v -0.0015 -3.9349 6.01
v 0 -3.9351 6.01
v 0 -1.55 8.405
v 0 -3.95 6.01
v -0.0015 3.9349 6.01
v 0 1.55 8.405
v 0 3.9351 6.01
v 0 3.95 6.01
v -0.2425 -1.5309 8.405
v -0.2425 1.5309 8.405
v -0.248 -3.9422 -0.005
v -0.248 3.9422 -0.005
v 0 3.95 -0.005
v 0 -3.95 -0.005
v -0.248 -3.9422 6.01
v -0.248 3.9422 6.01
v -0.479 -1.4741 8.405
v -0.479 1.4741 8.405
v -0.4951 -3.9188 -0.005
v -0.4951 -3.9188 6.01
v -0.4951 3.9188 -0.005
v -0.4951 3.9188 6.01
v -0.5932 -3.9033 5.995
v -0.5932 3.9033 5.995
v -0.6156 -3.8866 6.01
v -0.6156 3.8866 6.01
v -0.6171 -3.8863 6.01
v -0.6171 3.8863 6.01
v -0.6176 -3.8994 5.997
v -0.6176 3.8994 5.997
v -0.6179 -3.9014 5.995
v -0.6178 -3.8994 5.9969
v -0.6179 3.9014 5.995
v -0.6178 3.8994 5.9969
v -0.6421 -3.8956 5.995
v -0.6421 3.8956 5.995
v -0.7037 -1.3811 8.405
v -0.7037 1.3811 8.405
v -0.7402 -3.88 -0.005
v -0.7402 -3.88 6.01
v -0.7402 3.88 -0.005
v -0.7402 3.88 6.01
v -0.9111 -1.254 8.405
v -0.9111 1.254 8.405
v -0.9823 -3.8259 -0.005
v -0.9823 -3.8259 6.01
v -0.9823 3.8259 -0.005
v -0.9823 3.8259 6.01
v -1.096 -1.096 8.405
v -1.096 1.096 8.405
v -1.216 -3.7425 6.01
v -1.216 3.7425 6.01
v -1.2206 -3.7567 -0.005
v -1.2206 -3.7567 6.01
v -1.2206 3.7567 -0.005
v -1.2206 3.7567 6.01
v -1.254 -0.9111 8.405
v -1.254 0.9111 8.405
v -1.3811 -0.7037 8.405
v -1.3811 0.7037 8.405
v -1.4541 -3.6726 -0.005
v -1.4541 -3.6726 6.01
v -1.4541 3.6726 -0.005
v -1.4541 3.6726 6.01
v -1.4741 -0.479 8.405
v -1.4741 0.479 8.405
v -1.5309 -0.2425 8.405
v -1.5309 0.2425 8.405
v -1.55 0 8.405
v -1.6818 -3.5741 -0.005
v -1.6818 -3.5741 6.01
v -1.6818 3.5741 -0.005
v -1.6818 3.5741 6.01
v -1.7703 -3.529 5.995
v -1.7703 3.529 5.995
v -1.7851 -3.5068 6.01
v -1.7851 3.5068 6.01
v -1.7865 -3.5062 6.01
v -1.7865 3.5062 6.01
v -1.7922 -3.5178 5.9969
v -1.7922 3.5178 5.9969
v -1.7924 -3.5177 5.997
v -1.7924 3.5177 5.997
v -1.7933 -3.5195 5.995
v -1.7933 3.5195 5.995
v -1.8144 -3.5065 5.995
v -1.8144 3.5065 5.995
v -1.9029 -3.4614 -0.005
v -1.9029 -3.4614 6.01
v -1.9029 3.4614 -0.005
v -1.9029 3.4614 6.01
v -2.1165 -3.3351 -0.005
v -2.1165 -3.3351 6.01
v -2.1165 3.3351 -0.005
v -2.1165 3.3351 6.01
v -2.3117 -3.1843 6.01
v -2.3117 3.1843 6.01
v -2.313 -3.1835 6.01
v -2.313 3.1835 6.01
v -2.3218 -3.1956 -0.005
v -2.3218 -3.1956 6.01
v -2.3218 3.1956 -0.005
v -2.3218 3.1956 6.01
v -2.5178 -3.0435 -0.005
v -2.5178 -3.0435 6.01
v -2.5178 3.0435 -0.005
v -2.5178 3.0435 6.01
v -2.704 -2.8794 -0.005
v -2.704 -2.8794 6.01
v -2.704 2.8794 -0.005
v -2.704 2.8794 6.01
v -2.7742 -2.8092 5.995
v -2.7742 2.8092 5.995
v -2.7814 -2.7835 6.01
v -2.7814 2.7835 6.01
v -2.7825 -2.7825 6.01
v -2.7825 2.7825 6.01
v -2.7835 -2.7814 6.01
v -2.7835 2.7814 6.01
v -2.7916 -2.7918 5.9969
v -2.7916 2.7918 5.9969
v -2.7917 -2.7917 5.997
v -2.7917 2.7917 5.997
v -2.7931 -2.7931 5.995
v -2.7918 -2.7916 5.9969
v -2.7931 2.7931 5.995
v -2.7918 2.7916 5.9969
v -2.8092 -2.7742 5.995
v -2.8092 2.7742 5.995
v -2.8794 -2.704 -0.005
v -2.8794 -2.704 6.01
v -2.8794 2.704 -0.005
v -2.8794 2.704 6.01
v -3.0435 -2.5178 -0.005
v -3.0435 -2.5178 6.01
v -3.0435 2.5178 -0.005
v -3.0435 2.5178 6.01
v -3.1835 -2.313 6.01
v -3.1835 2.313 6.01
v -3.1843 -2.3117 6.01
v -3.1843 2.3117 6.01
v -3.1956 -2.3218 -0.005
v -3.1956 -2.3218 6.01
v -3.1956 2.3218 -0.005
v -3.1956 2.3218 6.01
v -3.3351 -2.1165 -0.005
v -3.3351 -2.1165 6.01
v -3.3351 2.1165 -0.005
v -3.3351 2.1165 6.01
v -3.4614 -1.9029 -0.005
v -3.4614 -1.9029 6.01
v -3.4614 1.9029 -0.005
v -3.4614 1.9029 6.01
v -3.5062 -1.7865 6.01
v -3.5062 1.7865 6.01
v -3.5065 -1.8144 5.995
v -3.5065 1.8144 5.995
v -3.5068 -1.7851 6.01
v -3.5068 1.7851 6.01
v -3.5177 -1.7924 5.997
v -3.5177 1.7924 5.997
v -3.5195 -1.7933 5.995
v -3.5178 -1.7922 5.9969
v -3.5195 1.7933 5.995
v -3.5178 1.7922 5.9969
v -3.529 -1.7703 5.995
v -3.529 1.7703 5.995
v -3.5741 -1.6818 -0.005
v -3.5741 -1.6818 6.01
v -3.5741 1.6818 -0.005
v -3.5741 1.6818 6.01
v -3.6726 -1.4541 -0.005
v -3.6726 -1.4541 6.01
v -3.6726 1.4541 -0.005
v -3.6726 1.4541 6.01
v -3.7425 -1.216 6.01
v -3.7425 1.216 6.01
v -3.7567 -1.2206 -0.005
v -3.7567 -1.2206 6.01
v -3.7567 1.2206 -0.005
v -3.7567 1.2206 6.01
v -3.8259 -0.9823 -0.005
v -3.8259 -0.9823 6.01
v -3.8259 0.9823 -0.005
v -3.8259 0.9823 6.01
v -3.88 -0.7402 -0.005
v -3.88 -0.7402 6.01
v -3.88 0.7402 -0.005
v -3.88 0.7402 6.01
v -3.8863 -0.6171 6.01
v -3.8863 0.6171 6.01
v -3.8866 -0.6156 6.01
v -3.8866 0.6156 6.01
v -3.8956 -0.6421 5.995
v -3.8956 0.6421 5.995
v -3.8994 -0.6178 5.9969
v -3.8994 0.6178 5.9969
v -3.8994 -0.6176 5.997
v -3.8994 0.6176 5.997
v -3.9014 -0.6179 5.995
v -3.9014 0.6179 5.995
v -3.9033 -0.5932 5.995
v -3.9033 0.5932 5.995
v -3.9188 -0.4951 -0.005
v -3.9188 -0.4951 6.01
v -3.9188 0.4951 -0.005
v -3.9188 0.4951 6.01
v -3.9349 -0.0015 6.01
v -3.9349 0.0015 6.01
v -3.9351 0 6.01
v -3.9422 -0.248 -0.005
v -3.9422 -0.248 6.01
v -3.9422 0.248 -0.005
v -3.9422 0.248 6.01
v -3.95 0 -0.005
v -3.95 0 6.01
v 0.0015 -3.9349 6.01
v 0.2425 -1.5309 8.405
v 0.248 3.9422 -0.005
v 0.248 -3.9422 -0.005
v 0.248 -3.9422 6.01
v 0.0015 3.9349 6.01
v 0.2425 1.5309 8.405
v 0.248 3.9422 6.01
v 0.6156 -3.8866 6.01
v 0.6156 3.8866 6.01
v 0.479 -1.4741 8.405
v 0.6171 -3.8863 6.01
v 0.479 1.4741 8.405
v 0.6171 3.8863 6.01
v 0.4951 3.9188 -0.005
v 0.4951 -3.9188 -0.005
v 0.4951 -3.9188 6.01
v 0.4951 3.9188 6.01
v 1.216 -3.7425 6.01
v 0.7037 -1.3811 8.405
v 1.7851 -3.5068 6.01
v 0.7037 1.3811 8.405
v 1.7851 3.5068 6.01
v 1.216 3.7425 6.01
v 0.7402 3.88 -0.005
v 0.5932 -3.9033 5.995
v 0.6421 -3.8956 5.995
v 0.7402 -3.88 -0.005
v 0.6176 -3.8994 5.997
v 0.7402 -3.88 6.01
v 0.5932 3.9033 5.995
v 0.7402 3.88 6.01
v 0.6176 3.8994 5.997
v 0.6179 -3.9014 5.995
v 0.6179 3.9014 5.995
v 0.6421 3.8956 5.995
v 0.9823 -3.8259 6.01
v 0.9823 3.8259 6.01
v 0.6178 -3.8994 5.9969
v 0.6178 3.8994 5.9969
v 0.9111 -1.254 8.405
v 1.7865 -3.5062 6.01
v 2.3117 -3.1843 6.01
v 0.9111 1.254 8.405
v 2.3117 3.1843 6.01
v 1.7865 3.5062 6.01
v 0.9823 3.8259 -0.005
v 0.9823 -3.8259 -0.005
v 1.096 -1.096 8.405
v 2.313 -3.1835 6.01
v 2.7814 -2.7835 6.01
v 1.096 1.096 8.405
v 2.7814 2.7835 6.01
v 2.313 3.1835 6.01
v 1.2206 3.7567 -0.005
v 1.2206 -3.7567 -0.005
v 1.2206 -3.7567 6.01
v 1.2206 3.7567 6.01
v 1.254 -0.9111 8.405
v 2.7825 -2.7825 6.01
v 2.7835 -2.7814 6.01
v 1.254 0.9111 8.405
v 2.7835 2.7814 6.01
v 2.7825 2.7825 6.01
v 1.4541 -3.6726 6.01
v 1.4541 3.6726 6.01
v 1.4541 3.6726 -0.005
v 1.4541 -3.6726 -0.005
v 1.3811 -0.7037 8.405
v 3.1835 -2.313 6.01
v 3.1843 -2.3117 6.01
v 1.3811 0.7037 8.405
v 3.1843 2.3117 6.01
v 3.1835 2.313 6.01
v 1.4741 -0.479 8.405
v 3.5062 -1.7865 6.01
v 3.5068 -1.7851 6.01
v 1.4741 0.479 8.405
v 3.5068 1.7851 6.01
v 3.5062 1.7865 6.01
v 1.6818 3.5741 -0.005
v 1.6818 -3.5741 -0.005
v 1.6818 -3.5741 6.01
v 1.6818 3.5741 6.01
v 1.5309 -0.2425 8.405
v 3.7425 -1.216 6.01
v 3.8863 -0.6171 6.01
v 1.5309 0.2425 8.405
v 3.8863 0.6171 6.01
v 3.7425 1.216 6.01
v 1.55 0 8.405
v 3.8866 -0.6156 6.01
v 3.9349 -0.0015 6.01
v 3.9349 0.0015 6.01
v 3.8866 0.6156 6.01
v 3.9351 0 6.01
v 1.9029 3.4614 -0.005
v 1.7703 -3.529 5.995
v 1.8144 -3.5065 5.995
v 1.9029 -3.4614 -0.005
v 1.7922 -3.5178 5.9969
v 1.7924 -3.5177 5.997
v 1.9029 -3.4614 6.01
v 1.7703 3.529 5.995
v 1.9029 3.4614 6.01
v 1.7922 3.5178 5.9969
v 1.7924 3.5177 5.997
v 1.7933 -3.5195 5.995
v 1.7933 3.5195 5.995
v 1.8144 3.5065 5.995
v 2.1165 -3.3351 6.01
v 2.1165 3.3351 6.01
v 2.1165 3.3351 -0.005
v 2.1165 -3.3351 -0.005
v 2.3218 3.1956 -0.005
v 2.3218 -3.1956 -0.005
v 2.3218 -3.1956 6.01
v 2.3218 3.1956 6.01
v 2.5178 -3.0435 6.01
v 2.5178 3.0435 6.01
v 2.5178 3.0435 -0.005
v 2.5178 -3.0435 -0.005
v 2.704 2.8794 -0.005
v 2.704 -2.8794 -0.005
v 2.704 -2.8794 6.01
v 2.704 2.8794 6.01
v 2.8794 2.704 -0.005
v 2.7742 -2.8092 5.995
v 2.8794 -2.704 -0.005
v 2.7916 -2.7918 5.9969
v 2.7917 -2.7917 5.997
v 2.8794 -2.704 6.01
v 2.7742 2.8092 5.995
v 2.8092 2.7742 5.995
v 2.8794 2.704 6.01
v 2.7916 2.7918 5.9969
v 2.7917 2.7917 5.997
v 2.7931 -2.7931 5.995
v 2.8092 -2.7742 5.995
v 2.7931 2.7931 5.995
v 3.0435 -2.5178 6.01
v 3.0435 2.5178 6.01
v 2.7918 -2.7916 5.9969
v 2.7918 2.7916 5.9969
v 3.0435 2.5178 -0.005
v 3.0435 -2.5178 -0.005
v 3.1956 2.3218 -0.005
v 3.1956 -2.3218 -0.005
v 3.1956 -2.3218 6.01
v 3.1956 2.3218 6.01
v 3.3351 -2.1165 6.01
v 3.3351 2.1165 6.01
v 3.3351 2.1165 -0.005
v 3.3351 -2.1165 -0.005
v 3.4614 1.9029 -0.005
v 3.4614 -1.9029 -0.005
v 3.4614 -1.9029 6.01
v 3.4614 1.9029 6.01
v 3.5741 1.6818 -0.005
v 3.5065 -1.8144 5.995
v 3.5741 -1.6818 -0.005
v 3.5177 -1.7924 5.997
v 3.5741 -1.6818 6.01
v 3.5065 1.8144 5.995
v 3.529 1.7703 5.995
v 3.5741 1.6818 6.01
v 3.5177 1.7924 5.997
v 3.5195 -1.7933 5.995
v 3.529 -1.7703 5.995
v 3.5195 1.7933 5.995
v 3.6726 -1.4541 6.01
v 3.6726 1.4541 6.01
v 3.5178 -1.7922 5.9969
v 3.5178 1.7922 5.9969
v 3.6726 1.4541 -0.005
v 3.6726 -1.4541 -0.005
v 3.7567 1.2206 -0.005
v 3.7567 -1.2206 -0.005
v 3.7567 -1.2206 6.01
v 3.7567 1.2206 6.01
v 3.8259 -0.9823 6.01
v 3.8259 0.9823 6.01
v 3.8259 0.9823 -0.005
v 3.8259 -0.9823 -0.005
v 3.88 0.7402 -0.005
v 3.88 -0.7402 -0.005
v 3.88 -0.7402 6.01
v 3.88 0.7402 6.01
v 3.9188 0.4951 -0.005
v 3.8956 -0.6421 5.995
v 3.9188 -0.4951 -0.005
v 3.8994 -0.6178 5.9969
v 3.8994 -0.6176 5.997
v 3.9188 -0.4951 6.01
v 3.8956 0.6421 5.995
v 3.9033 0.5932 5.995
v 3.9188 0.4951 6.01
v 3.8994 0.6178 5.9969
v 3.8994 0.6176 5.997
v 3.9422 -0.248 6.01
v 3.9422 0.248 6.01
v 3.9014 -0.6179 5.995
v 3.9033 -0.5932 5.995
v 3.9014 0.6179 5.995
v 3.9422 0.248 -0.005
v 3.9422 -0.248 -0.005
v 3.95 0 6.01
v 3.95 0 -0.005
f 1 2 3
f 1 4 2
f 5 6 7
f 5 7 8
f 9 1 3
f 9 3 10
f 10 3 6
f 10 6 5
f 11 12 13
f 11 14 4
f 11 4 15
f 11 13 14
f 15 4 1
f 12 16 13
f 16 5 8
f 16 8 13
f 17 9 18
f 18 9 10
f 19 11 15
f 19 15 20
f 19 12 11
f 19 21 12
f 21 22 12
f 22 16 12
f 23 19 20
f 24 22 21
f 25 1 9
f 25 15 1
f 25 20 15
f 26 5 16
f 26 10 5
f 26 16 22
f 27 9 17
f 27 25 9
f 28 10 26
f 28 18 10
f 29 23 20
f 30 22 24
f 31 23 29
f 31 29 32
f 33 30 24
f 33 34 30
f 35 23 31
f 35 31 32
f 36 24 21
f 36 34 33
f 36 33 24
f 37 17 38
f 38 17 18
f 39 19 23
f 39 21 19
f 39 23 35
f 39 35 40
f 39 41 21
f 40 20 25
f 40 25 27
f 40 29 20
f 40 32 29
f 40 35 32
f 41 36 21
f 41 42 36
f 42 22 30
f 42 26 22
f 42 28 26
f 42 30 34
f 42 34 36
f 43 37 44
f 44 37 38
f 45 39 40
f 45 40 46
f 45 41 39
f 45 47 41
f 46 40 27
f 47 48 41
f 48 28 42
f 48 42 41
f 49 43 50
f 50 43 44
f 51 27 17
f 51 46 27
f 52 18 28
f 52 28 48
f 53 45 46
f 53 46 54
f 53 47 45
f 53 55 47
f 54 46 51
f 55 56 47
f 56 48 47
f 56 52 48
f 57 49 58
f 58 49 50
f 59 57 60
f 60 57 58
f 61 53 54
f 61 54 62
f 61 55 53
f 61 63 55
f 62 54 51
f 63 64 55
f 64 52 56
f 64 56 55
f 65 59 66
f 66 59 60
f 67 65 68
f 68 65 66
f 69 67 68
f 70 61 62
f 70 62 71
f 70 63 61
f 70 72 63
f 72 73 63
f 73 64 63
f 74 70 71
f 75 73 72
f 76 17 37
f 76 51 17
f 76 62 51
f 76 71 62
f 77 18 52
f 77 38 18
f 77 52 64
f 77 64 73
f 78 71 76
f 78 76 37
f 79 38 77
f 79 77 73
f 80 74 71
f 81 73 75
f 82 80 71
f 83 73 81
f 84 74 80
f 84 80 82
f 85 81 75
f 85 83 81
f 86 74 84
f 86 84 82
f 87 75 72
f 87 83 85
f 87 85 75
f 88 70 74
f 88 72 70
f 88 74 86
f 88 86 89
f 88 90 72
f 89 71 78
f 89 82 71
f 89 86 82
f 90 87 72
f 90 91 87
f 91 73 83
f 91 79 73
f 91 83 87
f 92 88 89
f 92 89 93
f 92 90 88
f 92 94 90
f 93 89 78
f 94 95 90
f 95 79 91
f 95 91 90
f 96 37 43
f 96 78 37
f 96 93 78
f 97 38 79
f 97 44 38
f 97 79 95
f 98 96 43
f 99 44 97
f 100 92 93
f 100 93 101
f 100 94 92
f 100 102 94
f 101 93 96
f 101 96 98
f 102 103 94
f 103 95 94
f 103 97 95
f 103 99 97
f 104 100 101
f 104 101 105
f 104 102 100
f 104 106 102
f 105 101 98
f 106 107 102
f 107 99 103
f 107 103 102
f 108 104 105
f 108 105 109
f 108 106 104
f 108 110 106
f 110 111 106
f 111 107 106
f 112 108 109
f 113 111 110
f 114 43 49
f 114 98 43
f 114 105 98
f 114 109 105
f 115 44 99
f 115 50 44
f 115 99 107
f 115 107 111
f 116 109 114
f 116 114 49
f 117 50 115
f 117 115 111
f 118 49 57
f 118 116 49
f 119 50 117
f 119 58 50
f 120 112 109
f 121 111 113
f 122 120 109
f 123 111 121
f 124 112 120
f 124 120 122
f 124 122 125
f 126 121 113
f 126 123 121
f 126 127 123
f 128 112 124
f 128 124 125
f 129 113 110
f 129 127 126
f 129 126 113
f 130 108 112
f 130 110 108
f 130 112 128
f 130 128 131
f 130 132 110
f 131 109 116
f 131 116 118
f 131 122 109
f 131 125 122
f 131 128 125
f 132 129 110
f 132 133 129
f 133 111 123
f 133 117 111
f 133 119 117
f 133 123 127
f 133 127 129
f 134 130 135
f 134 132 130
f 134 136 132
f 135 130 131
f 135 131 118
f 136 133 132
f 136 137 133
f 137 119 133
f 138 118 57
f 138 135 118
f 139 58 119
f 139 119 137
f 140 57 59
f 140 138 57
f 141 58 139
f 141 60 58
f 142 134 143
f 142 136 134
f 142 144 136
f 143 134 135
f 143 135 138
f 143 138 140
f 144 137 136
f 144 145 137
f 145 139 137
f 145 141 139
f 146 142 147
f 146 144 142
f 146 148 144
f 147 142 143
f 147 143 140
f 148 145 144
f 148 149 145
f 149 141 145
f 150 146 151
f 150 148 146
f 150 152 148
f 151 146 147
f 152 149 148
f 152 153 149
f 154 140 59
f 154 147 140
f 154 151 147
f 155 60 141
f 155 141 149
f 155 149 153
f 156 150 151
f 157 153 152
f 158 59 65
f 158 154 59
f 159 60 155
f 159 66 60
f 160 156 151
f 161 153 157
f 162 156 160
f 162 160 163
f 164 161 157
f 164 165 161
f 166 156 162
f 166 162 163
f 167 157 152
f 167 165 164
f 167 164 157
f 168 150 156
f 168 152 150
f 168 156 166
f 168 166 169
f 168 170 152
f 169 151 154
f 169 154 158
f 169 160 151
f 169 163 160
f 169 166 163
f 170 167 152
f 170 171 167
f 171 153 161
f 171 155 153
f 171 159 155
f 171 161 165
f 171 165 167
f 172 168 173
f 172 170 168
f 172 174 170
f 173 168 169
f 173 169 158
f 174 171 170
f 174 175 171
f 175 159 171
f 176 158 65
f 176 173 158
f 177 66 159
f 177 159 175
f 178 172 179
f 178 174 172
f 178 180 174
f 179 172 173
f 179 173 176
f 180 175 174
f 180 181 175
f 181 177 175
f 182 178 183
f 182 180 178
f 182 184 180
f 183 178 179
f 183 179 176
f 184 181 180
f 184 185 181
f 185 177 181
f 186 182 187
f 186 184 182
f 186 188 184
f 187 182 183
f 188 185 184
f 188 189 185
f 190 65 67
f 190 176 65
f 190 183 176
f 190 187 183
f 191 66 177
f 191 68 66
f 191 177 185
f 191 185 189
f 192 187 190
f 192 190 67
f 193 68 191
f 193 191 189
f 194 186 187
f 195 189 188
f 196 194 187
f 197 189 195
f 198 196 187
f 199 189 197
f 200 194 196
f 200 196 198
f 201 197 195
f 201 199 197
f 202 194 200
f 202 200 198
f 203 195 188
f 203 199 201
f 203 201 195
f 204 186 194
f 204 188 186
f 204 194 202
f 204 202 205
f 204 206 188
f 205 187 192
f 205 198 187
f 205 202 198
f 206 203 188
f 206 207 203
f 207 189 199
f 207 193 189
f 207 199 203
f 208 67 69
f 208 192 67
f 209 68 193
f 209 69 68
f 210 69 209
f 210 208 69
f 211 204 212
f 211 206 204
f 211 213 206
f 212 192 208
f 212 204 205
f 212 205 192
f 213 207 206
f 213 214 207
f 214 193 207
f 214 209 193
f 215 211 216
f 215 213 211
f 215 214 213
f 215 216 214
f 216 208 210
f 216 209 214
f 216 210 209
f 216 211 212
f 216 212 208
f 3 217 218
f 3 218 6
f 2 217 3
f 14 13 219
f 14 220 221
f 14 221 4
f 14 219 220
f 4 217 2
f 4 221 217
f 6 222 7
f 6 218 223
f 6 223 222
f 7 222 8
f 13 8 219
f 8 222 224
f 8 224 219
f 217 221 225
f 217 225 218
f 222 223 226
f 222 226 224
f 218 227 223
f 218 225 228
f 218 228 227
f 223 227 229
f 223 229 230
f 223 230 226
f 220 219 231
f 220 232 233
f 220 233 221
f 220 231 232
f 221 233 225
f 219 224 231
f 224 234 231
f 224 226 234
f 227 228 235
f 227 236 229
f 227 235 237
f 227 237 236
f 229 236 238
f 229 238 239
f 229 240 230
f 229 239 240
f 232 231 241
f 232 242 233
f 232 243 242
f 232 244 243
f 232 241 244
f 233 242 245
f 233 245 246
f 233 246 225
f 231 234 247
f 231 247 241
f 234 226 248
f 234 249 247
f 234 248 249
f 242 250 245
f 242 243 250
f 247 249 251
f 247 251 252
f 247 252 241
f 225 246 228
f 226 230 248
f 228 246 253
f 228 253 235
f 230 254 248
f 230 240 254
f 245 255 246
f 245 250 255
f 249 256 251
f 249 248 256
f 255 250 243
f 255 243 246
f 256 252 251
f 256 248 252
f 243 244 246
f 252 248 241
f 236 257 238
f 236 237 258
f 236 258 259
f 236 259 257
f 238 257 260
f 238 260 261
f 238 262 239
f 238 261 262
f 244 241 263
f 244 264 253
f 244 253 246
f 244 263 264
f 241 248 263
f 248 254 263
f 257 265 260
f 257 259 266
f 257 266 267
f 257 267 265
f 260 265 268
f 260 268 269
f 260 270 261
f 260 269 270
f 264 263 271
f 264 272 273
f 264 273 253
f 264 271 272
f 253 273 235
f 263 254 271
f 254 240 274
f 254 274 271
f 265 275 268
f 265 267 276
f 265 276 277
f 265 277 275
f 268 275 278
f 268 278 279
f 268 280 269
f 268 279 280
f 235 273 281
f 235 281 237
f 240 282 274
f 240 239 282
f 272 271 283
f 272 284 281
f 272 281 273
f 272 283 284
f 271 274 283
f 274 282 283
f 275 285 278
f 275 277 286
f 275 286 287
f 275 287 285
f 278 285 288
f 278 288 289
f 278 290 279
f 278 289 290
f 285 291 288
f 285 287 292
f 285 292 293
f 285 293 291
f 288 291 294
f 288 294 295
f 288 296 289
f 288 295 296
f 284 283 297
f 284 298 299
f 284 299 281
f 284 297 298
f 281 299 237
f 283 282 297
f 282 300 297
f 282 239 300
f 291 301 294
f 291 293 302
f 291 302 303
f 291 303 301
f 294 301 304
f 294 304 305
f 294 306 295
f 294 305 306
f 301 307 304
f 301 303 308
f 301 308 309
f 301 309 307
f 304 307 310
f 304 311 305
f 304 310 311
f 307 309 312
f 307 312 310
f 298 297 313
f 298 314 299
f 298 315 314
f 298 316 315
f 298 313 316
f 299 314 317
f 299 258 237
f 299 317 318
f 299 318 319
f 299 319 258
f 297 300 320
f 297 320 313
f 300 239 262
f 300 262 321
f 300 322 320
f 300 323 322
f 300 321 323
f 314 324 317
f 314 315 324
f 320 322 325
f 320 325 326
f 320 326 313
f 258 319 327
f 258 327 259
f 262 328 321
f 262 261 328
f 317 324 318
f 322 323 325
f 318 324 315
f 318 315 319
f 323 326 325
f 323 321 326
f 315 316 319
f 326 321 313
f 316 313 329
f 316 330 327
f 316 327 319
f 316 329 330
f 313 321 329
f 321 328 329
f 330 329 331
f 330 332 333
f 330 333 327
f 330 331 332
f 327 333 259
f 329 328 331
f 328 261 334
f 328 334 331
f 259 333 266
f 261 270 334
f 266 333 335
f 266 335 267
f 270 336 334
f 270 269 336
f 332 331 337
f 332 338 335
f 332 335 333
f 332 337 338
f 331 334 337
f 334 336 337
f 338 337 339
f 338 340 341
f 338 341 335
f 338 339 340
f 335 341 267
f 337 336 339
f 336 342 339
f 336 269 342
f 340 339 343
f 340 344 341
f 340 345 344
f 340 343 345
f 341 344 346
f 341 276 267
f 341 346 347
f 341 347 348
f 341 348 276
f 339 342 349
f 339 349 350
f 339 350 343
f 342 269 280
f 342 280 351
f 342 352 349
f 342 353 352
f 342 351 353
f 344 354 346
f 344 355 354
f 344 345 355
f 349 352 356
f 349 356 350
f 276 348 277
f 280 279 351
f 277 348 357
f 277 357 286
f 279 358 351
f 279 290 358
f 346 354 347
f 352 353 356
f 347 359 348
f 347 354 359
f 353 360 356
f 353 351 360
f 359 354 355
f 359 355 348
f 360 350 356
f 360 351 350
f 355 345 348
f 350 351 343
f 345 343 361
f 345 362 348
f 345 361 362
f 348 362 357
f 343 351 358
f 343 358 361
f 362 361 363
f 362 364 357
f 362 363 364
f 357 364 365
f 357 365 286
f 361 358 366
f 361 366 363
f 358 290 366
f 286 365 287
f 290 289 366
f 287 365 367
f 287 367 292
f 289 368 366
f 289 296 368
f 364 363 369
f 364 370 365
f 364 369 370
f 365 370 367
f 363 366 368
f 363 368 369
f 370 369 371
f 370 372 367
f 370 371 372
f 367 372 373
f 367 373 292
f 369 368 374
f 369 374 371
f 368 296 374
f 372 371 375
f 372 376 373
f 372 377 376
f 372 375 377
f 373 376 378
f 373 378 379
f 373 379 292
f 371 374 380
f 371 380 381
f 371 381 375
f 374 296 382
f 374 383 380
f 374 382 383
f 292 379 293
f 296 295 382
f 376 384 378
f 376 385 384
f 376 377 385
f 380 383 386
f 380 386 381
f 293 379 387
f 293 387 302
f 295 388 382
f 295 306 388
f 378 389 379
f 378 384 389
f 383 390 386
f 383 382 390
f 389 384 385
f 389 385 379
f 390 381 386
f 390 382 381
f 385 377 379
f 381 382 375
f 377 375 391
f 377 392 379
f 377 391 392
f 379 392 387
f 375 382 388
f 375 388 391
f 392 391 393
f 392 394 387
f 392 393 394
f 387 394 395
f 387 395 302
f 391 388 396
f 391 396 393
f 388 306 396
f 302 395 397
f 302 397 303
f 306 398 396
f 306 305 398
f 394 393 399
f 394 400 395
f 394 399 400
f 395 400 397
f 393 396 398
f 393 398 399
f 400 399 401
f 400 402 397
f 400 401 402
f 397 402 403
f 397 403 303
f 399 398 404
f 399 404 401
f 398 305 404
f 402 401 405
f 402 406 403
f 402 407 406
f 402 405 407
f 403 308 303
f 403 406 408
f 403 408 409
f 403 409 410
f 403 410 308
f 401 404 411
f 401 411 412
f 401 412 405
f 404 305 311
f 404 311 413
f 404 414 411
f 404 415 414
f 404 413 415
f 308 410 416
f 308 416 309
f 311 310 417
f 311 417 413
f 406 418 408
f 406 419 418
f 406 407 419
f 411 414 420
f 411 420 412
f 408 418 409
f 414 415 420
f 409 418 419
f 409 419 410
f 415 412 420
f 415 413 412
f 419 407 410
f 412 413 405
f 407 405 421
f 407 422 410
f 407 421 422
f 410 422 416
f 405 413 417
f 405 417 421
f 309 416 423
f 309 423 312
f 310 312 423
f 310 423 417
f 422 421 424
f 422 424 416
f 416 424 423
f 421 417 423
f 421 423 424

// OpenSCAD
// file: lib/polyScrewThread_r1.scad
/*
 *    polyScrewThread_r1.scad    by aubenc @ Thingiverse
 *
 * This script contains the library modules that can be used to generate
 * threaded rods, screws and nuts.
 *
 * http://www.thingiverse.com/thing:8796
 *
 * CC Public Domain
 */


/* Example:
 * Just a 100mm long threaded rod.
 *
 * screw_thread(15,   // Outer diameter of the thread
 *               4,   // Step, traveling length per turn, also, tooth height, whatever...
 *              55,   // Degrees for the shape of the tooth 
 *                       (XY plane = 0, Z = 90, btw, 0 and 90 will/should not work...)
 *             100,   // Length (Z) of the tread
 *            PI/2,   // Resolution, one face each "PI/2" mm of the perimeter, 
 *               0);  // Countersink style:
 *                         -2 - Not even flat ends
 *                         -1 - Bottom (countersink'd and top flat)
 *                          0 - None (top and bottom flat)
 *                          1 - Top (bottom flat)
 *                          2 - Both (countersink'd)
 */
module screw_thread(od,st,lf0,lt,rs,cs)
{
    or=od/2;
    ir=or-st/2*cos(lf0)/sin(lf0);
    pf=2*PI*or;
    sn=floor(pf/rs);
    lfxy=360/sn;
    ttn=round(lt/st+1);
    zt=st/sn;

    intersection()
    {
        if (cs >= -1)
        {
           thread_shape(cs,lt,or,ir,sn,st);
        }

        full_thread(ttn,st,sn,zt,lfxy,or,ir);
    }
}

/* Example.
 * A nut for the thread rod example.
 *
 * hexa_nut(24,  // Distance between flats
 *           8,  // Height 
 *           4,  // Step height (the half will be used to countersink the ends)
 *          55,  // Degrees (same as used for the screw_thread example)
 *          15,  // Outer diameter of the thread to match
 *         0.5)  // Resolution, you may want to set this to small values
 *                  (quite high res) to minimize overhang issues
 *
 */
module hex_nut(df,hg,sth,clf,cod,crs)
{

    difference()
    {
        hex_head(hg,df);

        hex_countersink_ends(sth/2,cod,clf,crs,hg);

        screw_thread(cod,sth,clf,hg,crs,-2);
    }
}


module hex_screw(od,st,lf0,lt,rs,cs,df,hg,ntl,ntd)
{
    ntr=od/2-(st/2)*cos(lf0)/sin(lf0);

    union()
    {
        hex_head(hg,df);

        translate([0,0,hg])
        if ( ntl == 0 )
        {
            cylinder(h=0.01, r=ntr, center=true);
        }
        else
        {
            if ( ntd == -1 )
            {
                cylinder(h=ntl+0.01, r=ntr, $fn=floor(od*PI/rs), center=false);
            }
            else if ( ntd == 0 )
            {
                union()
                {
                    cylinder(h=ntl-st/2,
                             r=od/2, $fn=floor(od*PI/rs), center=false);

                    translate([0,0,ntl-st/2])
                    cylinder(h=st/2,
                             r1=od/2, r2=ntr, 
                             $fn=floor(od*PI/rs), center=false);
                }
            }
            else
            {
                cylinder(h=ntl, r=ntd/2, $fn=ntd*PI/rs, center=false);
            }
        }

        translate([0,0,ntl+hg]) screw_thread(od,st,lf0,lt,rs,cs);
    }
}

module hex_screw_0(od,st,lf0,lt,rs,cs,df,hg,ntl,ntd)
{
    ntr=od/2-(st/2)*cos(lf0)/sin(lf0);

    union()
    {
        hex_head_0(hg,df);

        translate([0,0,hg])
        if ( ntl == 0 )
        {
            cylinder(h=0.01, r=ntr, center=true);
        }
        else
        {
            if ( ntd == -1 )
            {
                cylinder(h=ntl+0.01, r=ntr, $fn=floor(od*PI/rs), center=false);
            }
            else if ( ntd == 0 )
            {
                union()
                {
                    cylinder(h=ntl-st/2,
                             r=od/2, $fn=floor(od*PI/rs), center=false);

                    translate([0,0,ntl-st/2])
                    cylinder(h=st/2,
                             r1=od/2, r2=ntr, 
                             $fn=floor(od*PI/rs), center=false);
                }
            }
            else
            {
                cylinder(h=ntl, r=ntd/2, $fn=ntd*PI/rs, center=false);
            }
        }

        translate([0,0,ntl+hg]) screw_thread(od,st,lf0,lt,rs,cs);
    }
}

module thread_shape(cs,lt,or,ir,sn,st)
{
    if ( cs == 0 )
    {
        cylinder(h=lt, r=or, $fn=sn, center=false);
    }
    else
    {
        union()
        {
            translate([0,0,st/2])
              cylinder(h=lt-st+0.005, r=or, $fn=sn, center=false);

            if ( cs == -1 || cs == 2 )
            {
                cylinder(h=st/2, r1=ir, r2=or, $fn=sn, center=false);
            }
            else
            {
                cylinder(h=st/2, r=or, $fn=sn, center=false);
            }

            translate([0,0,lt-st/2])
            if ( cs == 1 || cs == 2 )
            {
                  cylinder(h=st/2, r1=or, r2=ir, $fn=sn, center=false);
            }
            else
            {
                cylinder(h=st/2, r=or, $fn=sn, center=false);
            }
        }
    }
}

module full_thread(ttn,st,sn,zt,lfxy,or,ir)
{
  if(ir >= 0.2)
  {
    for(i=[0:ttn-1])
    {
        for(j=[0:sn-1])
			assign( pt = [	[0,                  0,                  i*st-st            ],
                        [ir*cos(j*lfxy),     ir*sin(j*lfxy),     i*st+j*zt-st       ],
                        [ir*cos((j+1)*lfxy), ir*sin((j+1)*lfxy), i*st+(j+1)*zt-st   ],
								[0,0,i*st],
                        [or*cos(j*lfxy),     or*sin(j*lfxy),     i*st+j*zt-st/2     ],
                        [or*cos((j+1)*lfxy), or*sin((j+1)*lfxy), i*st+(j+1)*zt-st/2 ],
                        [ir*cos(j*lfxy),     ir*sin(j*lfxy),     i*st+j*zt          ],
                        [ir*cos((j+1)*lfxy), ir*sin((j+1)*lfxy), i*st+(j+1)*zt      ],
                        [0,                  0,                  i*st+st            ]	])
        {
            polyhedron(points=pt,
              		  triangles=[	[1,0,3],[1,3,6],[6,3,8],[1,6,4],
											[0,1,2],[1,4,2],[2,4,5],[5,4,6],[5,6,7],[7,6,8],
											[7,8,3],[0,2,3],[3,2,7],[7,2,5]	]);
        }
    }
  }
  else
  {
    echo("Step Degrees too agresive, the thread will not be made!!");
    echo("Try to increase de value for the degrees and/or...");
    echo(" decrease the pitch value and/or...");
    echo(" increase the outer diameter value.");
  }
}

module hex_head(hg,df)
{
	rd0=df/2/sin(60);
	x0=0;	x1=df/2;	x2=x1+hg/2;
	y0=0;	y1=hg/2;	y2=hg;

	intersection()
	{
	   cylinder(h=hg, r=rd0, $fn=6, center=false);

		rotate_extrude(convexity=10, $fn=6*round(df*PI/6/0.5))
		polygon([ [x0,y0],[x1,y0],[x2,y1],[x1,y2],[x0,y2] ]);
	}
}

module hex_head_0(hg,df)
{
    cylinder(h=hg, r=df/2/sin(60), $fn=6, center=false);
}

module hex_countersink_ends(chg,cod,clf,crs,hg)
{
    translate([0,0,-0.1])
    cylinder(h=chg+0.01, 
             r1=cod/2, 
             r2=cod/2-(chg+0.1)*cos(clf)/sin(clf),
             $fn=floor(cod*PI/crs), center=false);

    translate([0,0,hg-chg+0.1])
    cylinder(h=chg+0.01, 
             r1=cod/2-(chg+0.1)*cos(clf)/sin(clf),
             r2=cod/2, 
             $fn=floor(cod*PI/crs), center=false);
}
// file: ../configuration.scad
//$fn=40; // model faces resolution.

//COMMON PARAMETERS
global_clearance = 0.5; // additional space where needed due to printer precision
layer_thickness = 0.3; // layer which is going to be removed after printing
//M3 x 12 Bolt
M3_nut_diameter = 6.6;
M3_nut_height = 2.7;
M3_bolt_diameter = 3.2;
M3_bolt_head_height = 3;
M3_bolt_length = 12;
//M5 Bolt
M5_bolt_diameter = 5.5;
M5_nut_height = 4.5;
M5_nut_diameter = 9.4;
//M6 Bolt
M6_bolt_diameter = 6.5;
M6_nut_height = 4.9;
M6_nut_diameter = 11.8;


//----------------------------------------------------------------
//----------------------------------------------------------------
//WINDGAUGE02A_S02 - Parametry pro hlavni valec anemometru
S01_hloubka_zavitu=4;
S01_vyska=110; //80
S01_prumer_vnitrni=50;
S01_sila_materialu=1.2;
S01_vyska_horni_zavit=10;
S01_vyska_spodniho_zavitu=10;
S01_sila_drzaku_RJ11=3; //vyška drážky
S01_hrana_A_RJ11=12.3;
S01_hrana_B_RJ11=19;
S01_tolerance_zavit=1.5;

//Rozměry ložiska se závity
//LO_spodni_prumer=22;
LO_spodni_prumer=17.2; //bez krytu
LO_vyska_bez_krytu=15;
LO_doraz_prumer=44.3;
LO_horni_prumer=7.7;
LO_vyska_spodni_doraz=5;
LO_vyska_horni_doraz=9;
LO_vyska_dorazu=0;





//Obecné parametry
prumer_osicky=5.1;



//Parametry loziska
lozisko_prumer_vnitrni=4.9;
lozisko_prumer_vnejsi=16.1;
lozisko_vyska=5;
lozisko_prekryv=1.5;

//Parametry magnetu
magnet_prumer=6.3;
magnet_vyska=5;
magnet_zapusteni=2;
magnet_tolerance_prumeru=0.2;

//Parametry sroubu
prumer_sroubu=3.4;
prumer_hlavy_sroubu=8.2;
vyska_hlavy_sroubu=4.3;
vyska_matky=3;
sirka_matky=6.7;

sirka_matky_tol=0.175;
prumer_orechu=10;

//WINDGAUGE02A_R01 //pro lopatku
L01_hrana_drzaku_a=10;
L01_hrana_drzaku_b=3;
L01_delka_uchytu=19;
L01_prumer_lopatky=40;
L01_sila_materialu_lopatky=0.9;

//WINDGAUGE02A_D02 Anemometer holder
//   | |   Top ring with Screw-thread
//  /   \  Body
// |_____| Base
D02_magnet_base_height = 4.5 + 1.5*global_clearance; // HS-13 M5 magnet height without bolt
D02_magnet_diameter = 16.1 + global_clearance; // HS-13 M5 magnet diameter
D02_flat_magnet_diameter = 18.1 + global_clearance; // HS-13 M5 magnet diameter
D02_wall_thickness = 5; // body wall thickness
D02_connector_spacing = 40; // main body cut-through for connectors
D02_base_diameter = 140; // diameter of holder base
D02_base_height = max(M6_nut_height + 1.5,
                      D02_magnet_base_height + M5_nut_height/2 + 1.5); // height of holder base
D02_body_height = 60 - D02_base_height; // height of body between base and top ring
D02_screw_diameter = S01_prumer_vnitrni - S01_tolerance_zavit; // scew-thread diameter based on stand S01
D02_thread_height = S01_vyska_spodniho_zavitu; // screw-thread height based on stand S01
D02_top_ring_inner_diameter = D02_screw_diameter - 6; // inner diameter of top ring
D02_top_ring_outer_diameter = D02_screw_diameter + 4; // outer diameter of top ring
D02_top_ring_height = D02_thread_height + 5; // height of top ring
D02_total_height = D02_base_height + D02_body_height + D02_top_ring_height; // total height of anemometer holder
// Following parameters are obsolete, maintained only for compatibility.
D01_material_pod_zavitem = D02_top_ring_height - D02_thread_height;
D01_material_za_zavitem = D02_screw_diameter - D02_top_ring_inner_diameter;
D01_material_pred_zavitem = D02_top_ring_outer_diameter - D02_screw_diameter;
D01_polomer_zakladny = D02_base_diameter/2;
D01_sila_setny_spodniho_drzaku=D02_wall_thickness;
D01_vyska_spodni_casti_drzaku = D02_body_height + D02_base_height;
D01_sirka_otvoru_pro_konektor = D02_connector_spacing;
D01_ucyhtna_matice_material_nad = D02_base_height - M6_nut_height;
D01_uchytna_matice_vyska = M6_nut_height;
D01_uchytna_matice_sirka = M6_nut_diameter;
D01_uchytny_sroub_prumer = M6_bolt_diameter;

// Following parameters are actually used in D01 model.
//WINDGAUGE02A_D02 //uchyt na sloup
D02_sila_materialu=6;
D02_vyska_uchytky=40;
D02_prumer_obruby=27; // 3/4 trubka
D02_delka_celeho_uchytu=60;
D02_dotahova_vzdalenost=1.5;
D02_prumer_uchytneho_sroubu=4.2;
D02_sirka_matky=9.1; //pro M4
D02_vyska_matky=3;


//WINDGAUGE02A_R01 //rotor s prekritim statoru
R01_vyska_prekryti_statoru=10;
R01_sila_materialu_pro_prekriti=1.3;
R01_mezera_mezi_statorem_rotorem=3;

//WINDGAUGE02A_R03 //drzak magnetu
R05_sirka_matky=10;



R03_prumer_zavitu=40;
R04_zavit_vyska=5;
R02_zavit_vyska=10;
R01_zavit_vyska=5;
R03_mezera_mezi_statorem_rotorem=3;

R02_delka_kridla=45;
R02_vzdalenost_der=25;

R02_delka_vyrovnnavaci_tyce=35;
R02_hrana_drzaku=14;
R02_sila_materialu_pod_tyci=5;
R02_sila_materialu_kridla=1.2;
R02_sila_materialu_kridla_tolerance=0.3;

R05_vyska_kridla=100;
R05_delka_kridla=100;


//S04
I2CDIFF01A_sirka_kon=16.5; //sirka konektoru
I2CDIFF01A_vyska_kon=13.5; //vyska konektoru
I2CDIFF01A_sirka_mod_otvory=4; //kolik modul zabira der
I2CDIFF01A_vyska_PCB=2; //vyska mezi albase a konektorem
S04_sila_materialu=2;

//S04_USBI2C01A
USBI2C01A_sirka_kon=12; //sirka konektoru
USBI2C01A_vyska_kon=11; //vyska konektoru
USBI2C01A_sirka_mod_otvory=3; //kolik modul zabira der
USBI2C01A_vyska_PCB=2; //vyska mezi albase a konektorem


//WINDGAUGE03A_R03 // Venturi tube
R03_wide_D = 36; // Venturi wide tube inner diameter
R03_narrow_D = R03_wide_D/1.4; // Venturi narrow tube inner diameter
R03_global_clearance = global_clearance; // additional space where needed due to printer precision
R03_PCB_top_rim = 5.5; // vertical distance from top of tube to top of PCB
R03_PCB_height = 41; // height of PCB casing - if changed check casing
R03_PCB_width = 14; // width of PCB casing - if changed check casing
R03_PCB_depth = 3.7; // depth of PCB casing - if changed check casing
R03_PCB_connector_overlay = 2.5; // additional depth of PCB casing on connectors side - if changed check casing
R03_PCB_elevation = 2; // additional elevation of PCB for waterproofing
R03_air_tube_diameter = 2; // air tubes diameter
R03_sensor_housing_offset = 15;  // distance from venturi tube height to sensor housing drop
R03_sensor_offset = 2.2;  // SDP33 distance from PCB border to sensor
R03_sensor_pitch = 4.3;  // SDP33 distance between sensors
R03_sensor_diameter = 3.5;  // SDP33 sensor diameter
R03_sensor_depth = 2.5;  // SDP33 sensor depth
R03_slip_ring_offset = 0; // slip-ring offset from tube center
R03_venturi_tube_height = 150;  // Venturi tube height (limited by max print size)
R03_wall_thickness = 3; // Venturi tube wall thickness
R03_sealing_ring_thickness = 1.5; // sealing ring size
R03_fin_width = 0.8; // width of vertical stabilizator
R03_fin_length = 150; // length of vertical stabilizator
R03_fin_height = 150; // height of vertical stabilizator
R03_fin_holder_width = M3_bolt_length + M3_nut_height;
R03_fin_holder_height = M3_nut_diameter + 2*R03_wall_thickness;
R03_fin_holder_depth = R03_wide_D/2 + R03_fin_holder_height;
R03_balance_shelf_width = 20; // width of shelf for balance weights
R03_balance_shelf_height = 10; // height of shelf for balance weights
// main file
$fn=40; // model faces resolution.
include <../configuration.scad>
include <./lib/polyScrewThread_r1.scad>

PI=3.141592;


//Držák magnetu

module WINDGAUGE01A_R06()
{
    //valec se zavitem
    union()  
        {
        
            
       translate([0,0,S01_sila_materialu/2])           
            cylinder (h = S01_sila_materialu+0.01, r=(LO_horni_prumer+0.2)/2, center = true, $fn=100);      
        
            
            cylinder (h = LO_vyska_horni_doraz-R03_mezera_mezi_statorem_rotorem+0.01, r=(LO_horni_prumer+0.2)/2, $fn=100);            
                         
         
             translate([0,0,LO_vyska_horni_doraz-R03_mezera_mezi_statorem_rotorem])
              
          
          
 translate([0,0,-0.005])
                
                cylinder(h=2*S01_sila_materialu+0.01,r1=(LO_horni_prumer+0.2)/2, r2=(LO_horni_prumer+0.2)/2-2*S01_sila_materialu,  center=false);  
             

   
        }
  }




WINDGAUGE01A_R06();

 
